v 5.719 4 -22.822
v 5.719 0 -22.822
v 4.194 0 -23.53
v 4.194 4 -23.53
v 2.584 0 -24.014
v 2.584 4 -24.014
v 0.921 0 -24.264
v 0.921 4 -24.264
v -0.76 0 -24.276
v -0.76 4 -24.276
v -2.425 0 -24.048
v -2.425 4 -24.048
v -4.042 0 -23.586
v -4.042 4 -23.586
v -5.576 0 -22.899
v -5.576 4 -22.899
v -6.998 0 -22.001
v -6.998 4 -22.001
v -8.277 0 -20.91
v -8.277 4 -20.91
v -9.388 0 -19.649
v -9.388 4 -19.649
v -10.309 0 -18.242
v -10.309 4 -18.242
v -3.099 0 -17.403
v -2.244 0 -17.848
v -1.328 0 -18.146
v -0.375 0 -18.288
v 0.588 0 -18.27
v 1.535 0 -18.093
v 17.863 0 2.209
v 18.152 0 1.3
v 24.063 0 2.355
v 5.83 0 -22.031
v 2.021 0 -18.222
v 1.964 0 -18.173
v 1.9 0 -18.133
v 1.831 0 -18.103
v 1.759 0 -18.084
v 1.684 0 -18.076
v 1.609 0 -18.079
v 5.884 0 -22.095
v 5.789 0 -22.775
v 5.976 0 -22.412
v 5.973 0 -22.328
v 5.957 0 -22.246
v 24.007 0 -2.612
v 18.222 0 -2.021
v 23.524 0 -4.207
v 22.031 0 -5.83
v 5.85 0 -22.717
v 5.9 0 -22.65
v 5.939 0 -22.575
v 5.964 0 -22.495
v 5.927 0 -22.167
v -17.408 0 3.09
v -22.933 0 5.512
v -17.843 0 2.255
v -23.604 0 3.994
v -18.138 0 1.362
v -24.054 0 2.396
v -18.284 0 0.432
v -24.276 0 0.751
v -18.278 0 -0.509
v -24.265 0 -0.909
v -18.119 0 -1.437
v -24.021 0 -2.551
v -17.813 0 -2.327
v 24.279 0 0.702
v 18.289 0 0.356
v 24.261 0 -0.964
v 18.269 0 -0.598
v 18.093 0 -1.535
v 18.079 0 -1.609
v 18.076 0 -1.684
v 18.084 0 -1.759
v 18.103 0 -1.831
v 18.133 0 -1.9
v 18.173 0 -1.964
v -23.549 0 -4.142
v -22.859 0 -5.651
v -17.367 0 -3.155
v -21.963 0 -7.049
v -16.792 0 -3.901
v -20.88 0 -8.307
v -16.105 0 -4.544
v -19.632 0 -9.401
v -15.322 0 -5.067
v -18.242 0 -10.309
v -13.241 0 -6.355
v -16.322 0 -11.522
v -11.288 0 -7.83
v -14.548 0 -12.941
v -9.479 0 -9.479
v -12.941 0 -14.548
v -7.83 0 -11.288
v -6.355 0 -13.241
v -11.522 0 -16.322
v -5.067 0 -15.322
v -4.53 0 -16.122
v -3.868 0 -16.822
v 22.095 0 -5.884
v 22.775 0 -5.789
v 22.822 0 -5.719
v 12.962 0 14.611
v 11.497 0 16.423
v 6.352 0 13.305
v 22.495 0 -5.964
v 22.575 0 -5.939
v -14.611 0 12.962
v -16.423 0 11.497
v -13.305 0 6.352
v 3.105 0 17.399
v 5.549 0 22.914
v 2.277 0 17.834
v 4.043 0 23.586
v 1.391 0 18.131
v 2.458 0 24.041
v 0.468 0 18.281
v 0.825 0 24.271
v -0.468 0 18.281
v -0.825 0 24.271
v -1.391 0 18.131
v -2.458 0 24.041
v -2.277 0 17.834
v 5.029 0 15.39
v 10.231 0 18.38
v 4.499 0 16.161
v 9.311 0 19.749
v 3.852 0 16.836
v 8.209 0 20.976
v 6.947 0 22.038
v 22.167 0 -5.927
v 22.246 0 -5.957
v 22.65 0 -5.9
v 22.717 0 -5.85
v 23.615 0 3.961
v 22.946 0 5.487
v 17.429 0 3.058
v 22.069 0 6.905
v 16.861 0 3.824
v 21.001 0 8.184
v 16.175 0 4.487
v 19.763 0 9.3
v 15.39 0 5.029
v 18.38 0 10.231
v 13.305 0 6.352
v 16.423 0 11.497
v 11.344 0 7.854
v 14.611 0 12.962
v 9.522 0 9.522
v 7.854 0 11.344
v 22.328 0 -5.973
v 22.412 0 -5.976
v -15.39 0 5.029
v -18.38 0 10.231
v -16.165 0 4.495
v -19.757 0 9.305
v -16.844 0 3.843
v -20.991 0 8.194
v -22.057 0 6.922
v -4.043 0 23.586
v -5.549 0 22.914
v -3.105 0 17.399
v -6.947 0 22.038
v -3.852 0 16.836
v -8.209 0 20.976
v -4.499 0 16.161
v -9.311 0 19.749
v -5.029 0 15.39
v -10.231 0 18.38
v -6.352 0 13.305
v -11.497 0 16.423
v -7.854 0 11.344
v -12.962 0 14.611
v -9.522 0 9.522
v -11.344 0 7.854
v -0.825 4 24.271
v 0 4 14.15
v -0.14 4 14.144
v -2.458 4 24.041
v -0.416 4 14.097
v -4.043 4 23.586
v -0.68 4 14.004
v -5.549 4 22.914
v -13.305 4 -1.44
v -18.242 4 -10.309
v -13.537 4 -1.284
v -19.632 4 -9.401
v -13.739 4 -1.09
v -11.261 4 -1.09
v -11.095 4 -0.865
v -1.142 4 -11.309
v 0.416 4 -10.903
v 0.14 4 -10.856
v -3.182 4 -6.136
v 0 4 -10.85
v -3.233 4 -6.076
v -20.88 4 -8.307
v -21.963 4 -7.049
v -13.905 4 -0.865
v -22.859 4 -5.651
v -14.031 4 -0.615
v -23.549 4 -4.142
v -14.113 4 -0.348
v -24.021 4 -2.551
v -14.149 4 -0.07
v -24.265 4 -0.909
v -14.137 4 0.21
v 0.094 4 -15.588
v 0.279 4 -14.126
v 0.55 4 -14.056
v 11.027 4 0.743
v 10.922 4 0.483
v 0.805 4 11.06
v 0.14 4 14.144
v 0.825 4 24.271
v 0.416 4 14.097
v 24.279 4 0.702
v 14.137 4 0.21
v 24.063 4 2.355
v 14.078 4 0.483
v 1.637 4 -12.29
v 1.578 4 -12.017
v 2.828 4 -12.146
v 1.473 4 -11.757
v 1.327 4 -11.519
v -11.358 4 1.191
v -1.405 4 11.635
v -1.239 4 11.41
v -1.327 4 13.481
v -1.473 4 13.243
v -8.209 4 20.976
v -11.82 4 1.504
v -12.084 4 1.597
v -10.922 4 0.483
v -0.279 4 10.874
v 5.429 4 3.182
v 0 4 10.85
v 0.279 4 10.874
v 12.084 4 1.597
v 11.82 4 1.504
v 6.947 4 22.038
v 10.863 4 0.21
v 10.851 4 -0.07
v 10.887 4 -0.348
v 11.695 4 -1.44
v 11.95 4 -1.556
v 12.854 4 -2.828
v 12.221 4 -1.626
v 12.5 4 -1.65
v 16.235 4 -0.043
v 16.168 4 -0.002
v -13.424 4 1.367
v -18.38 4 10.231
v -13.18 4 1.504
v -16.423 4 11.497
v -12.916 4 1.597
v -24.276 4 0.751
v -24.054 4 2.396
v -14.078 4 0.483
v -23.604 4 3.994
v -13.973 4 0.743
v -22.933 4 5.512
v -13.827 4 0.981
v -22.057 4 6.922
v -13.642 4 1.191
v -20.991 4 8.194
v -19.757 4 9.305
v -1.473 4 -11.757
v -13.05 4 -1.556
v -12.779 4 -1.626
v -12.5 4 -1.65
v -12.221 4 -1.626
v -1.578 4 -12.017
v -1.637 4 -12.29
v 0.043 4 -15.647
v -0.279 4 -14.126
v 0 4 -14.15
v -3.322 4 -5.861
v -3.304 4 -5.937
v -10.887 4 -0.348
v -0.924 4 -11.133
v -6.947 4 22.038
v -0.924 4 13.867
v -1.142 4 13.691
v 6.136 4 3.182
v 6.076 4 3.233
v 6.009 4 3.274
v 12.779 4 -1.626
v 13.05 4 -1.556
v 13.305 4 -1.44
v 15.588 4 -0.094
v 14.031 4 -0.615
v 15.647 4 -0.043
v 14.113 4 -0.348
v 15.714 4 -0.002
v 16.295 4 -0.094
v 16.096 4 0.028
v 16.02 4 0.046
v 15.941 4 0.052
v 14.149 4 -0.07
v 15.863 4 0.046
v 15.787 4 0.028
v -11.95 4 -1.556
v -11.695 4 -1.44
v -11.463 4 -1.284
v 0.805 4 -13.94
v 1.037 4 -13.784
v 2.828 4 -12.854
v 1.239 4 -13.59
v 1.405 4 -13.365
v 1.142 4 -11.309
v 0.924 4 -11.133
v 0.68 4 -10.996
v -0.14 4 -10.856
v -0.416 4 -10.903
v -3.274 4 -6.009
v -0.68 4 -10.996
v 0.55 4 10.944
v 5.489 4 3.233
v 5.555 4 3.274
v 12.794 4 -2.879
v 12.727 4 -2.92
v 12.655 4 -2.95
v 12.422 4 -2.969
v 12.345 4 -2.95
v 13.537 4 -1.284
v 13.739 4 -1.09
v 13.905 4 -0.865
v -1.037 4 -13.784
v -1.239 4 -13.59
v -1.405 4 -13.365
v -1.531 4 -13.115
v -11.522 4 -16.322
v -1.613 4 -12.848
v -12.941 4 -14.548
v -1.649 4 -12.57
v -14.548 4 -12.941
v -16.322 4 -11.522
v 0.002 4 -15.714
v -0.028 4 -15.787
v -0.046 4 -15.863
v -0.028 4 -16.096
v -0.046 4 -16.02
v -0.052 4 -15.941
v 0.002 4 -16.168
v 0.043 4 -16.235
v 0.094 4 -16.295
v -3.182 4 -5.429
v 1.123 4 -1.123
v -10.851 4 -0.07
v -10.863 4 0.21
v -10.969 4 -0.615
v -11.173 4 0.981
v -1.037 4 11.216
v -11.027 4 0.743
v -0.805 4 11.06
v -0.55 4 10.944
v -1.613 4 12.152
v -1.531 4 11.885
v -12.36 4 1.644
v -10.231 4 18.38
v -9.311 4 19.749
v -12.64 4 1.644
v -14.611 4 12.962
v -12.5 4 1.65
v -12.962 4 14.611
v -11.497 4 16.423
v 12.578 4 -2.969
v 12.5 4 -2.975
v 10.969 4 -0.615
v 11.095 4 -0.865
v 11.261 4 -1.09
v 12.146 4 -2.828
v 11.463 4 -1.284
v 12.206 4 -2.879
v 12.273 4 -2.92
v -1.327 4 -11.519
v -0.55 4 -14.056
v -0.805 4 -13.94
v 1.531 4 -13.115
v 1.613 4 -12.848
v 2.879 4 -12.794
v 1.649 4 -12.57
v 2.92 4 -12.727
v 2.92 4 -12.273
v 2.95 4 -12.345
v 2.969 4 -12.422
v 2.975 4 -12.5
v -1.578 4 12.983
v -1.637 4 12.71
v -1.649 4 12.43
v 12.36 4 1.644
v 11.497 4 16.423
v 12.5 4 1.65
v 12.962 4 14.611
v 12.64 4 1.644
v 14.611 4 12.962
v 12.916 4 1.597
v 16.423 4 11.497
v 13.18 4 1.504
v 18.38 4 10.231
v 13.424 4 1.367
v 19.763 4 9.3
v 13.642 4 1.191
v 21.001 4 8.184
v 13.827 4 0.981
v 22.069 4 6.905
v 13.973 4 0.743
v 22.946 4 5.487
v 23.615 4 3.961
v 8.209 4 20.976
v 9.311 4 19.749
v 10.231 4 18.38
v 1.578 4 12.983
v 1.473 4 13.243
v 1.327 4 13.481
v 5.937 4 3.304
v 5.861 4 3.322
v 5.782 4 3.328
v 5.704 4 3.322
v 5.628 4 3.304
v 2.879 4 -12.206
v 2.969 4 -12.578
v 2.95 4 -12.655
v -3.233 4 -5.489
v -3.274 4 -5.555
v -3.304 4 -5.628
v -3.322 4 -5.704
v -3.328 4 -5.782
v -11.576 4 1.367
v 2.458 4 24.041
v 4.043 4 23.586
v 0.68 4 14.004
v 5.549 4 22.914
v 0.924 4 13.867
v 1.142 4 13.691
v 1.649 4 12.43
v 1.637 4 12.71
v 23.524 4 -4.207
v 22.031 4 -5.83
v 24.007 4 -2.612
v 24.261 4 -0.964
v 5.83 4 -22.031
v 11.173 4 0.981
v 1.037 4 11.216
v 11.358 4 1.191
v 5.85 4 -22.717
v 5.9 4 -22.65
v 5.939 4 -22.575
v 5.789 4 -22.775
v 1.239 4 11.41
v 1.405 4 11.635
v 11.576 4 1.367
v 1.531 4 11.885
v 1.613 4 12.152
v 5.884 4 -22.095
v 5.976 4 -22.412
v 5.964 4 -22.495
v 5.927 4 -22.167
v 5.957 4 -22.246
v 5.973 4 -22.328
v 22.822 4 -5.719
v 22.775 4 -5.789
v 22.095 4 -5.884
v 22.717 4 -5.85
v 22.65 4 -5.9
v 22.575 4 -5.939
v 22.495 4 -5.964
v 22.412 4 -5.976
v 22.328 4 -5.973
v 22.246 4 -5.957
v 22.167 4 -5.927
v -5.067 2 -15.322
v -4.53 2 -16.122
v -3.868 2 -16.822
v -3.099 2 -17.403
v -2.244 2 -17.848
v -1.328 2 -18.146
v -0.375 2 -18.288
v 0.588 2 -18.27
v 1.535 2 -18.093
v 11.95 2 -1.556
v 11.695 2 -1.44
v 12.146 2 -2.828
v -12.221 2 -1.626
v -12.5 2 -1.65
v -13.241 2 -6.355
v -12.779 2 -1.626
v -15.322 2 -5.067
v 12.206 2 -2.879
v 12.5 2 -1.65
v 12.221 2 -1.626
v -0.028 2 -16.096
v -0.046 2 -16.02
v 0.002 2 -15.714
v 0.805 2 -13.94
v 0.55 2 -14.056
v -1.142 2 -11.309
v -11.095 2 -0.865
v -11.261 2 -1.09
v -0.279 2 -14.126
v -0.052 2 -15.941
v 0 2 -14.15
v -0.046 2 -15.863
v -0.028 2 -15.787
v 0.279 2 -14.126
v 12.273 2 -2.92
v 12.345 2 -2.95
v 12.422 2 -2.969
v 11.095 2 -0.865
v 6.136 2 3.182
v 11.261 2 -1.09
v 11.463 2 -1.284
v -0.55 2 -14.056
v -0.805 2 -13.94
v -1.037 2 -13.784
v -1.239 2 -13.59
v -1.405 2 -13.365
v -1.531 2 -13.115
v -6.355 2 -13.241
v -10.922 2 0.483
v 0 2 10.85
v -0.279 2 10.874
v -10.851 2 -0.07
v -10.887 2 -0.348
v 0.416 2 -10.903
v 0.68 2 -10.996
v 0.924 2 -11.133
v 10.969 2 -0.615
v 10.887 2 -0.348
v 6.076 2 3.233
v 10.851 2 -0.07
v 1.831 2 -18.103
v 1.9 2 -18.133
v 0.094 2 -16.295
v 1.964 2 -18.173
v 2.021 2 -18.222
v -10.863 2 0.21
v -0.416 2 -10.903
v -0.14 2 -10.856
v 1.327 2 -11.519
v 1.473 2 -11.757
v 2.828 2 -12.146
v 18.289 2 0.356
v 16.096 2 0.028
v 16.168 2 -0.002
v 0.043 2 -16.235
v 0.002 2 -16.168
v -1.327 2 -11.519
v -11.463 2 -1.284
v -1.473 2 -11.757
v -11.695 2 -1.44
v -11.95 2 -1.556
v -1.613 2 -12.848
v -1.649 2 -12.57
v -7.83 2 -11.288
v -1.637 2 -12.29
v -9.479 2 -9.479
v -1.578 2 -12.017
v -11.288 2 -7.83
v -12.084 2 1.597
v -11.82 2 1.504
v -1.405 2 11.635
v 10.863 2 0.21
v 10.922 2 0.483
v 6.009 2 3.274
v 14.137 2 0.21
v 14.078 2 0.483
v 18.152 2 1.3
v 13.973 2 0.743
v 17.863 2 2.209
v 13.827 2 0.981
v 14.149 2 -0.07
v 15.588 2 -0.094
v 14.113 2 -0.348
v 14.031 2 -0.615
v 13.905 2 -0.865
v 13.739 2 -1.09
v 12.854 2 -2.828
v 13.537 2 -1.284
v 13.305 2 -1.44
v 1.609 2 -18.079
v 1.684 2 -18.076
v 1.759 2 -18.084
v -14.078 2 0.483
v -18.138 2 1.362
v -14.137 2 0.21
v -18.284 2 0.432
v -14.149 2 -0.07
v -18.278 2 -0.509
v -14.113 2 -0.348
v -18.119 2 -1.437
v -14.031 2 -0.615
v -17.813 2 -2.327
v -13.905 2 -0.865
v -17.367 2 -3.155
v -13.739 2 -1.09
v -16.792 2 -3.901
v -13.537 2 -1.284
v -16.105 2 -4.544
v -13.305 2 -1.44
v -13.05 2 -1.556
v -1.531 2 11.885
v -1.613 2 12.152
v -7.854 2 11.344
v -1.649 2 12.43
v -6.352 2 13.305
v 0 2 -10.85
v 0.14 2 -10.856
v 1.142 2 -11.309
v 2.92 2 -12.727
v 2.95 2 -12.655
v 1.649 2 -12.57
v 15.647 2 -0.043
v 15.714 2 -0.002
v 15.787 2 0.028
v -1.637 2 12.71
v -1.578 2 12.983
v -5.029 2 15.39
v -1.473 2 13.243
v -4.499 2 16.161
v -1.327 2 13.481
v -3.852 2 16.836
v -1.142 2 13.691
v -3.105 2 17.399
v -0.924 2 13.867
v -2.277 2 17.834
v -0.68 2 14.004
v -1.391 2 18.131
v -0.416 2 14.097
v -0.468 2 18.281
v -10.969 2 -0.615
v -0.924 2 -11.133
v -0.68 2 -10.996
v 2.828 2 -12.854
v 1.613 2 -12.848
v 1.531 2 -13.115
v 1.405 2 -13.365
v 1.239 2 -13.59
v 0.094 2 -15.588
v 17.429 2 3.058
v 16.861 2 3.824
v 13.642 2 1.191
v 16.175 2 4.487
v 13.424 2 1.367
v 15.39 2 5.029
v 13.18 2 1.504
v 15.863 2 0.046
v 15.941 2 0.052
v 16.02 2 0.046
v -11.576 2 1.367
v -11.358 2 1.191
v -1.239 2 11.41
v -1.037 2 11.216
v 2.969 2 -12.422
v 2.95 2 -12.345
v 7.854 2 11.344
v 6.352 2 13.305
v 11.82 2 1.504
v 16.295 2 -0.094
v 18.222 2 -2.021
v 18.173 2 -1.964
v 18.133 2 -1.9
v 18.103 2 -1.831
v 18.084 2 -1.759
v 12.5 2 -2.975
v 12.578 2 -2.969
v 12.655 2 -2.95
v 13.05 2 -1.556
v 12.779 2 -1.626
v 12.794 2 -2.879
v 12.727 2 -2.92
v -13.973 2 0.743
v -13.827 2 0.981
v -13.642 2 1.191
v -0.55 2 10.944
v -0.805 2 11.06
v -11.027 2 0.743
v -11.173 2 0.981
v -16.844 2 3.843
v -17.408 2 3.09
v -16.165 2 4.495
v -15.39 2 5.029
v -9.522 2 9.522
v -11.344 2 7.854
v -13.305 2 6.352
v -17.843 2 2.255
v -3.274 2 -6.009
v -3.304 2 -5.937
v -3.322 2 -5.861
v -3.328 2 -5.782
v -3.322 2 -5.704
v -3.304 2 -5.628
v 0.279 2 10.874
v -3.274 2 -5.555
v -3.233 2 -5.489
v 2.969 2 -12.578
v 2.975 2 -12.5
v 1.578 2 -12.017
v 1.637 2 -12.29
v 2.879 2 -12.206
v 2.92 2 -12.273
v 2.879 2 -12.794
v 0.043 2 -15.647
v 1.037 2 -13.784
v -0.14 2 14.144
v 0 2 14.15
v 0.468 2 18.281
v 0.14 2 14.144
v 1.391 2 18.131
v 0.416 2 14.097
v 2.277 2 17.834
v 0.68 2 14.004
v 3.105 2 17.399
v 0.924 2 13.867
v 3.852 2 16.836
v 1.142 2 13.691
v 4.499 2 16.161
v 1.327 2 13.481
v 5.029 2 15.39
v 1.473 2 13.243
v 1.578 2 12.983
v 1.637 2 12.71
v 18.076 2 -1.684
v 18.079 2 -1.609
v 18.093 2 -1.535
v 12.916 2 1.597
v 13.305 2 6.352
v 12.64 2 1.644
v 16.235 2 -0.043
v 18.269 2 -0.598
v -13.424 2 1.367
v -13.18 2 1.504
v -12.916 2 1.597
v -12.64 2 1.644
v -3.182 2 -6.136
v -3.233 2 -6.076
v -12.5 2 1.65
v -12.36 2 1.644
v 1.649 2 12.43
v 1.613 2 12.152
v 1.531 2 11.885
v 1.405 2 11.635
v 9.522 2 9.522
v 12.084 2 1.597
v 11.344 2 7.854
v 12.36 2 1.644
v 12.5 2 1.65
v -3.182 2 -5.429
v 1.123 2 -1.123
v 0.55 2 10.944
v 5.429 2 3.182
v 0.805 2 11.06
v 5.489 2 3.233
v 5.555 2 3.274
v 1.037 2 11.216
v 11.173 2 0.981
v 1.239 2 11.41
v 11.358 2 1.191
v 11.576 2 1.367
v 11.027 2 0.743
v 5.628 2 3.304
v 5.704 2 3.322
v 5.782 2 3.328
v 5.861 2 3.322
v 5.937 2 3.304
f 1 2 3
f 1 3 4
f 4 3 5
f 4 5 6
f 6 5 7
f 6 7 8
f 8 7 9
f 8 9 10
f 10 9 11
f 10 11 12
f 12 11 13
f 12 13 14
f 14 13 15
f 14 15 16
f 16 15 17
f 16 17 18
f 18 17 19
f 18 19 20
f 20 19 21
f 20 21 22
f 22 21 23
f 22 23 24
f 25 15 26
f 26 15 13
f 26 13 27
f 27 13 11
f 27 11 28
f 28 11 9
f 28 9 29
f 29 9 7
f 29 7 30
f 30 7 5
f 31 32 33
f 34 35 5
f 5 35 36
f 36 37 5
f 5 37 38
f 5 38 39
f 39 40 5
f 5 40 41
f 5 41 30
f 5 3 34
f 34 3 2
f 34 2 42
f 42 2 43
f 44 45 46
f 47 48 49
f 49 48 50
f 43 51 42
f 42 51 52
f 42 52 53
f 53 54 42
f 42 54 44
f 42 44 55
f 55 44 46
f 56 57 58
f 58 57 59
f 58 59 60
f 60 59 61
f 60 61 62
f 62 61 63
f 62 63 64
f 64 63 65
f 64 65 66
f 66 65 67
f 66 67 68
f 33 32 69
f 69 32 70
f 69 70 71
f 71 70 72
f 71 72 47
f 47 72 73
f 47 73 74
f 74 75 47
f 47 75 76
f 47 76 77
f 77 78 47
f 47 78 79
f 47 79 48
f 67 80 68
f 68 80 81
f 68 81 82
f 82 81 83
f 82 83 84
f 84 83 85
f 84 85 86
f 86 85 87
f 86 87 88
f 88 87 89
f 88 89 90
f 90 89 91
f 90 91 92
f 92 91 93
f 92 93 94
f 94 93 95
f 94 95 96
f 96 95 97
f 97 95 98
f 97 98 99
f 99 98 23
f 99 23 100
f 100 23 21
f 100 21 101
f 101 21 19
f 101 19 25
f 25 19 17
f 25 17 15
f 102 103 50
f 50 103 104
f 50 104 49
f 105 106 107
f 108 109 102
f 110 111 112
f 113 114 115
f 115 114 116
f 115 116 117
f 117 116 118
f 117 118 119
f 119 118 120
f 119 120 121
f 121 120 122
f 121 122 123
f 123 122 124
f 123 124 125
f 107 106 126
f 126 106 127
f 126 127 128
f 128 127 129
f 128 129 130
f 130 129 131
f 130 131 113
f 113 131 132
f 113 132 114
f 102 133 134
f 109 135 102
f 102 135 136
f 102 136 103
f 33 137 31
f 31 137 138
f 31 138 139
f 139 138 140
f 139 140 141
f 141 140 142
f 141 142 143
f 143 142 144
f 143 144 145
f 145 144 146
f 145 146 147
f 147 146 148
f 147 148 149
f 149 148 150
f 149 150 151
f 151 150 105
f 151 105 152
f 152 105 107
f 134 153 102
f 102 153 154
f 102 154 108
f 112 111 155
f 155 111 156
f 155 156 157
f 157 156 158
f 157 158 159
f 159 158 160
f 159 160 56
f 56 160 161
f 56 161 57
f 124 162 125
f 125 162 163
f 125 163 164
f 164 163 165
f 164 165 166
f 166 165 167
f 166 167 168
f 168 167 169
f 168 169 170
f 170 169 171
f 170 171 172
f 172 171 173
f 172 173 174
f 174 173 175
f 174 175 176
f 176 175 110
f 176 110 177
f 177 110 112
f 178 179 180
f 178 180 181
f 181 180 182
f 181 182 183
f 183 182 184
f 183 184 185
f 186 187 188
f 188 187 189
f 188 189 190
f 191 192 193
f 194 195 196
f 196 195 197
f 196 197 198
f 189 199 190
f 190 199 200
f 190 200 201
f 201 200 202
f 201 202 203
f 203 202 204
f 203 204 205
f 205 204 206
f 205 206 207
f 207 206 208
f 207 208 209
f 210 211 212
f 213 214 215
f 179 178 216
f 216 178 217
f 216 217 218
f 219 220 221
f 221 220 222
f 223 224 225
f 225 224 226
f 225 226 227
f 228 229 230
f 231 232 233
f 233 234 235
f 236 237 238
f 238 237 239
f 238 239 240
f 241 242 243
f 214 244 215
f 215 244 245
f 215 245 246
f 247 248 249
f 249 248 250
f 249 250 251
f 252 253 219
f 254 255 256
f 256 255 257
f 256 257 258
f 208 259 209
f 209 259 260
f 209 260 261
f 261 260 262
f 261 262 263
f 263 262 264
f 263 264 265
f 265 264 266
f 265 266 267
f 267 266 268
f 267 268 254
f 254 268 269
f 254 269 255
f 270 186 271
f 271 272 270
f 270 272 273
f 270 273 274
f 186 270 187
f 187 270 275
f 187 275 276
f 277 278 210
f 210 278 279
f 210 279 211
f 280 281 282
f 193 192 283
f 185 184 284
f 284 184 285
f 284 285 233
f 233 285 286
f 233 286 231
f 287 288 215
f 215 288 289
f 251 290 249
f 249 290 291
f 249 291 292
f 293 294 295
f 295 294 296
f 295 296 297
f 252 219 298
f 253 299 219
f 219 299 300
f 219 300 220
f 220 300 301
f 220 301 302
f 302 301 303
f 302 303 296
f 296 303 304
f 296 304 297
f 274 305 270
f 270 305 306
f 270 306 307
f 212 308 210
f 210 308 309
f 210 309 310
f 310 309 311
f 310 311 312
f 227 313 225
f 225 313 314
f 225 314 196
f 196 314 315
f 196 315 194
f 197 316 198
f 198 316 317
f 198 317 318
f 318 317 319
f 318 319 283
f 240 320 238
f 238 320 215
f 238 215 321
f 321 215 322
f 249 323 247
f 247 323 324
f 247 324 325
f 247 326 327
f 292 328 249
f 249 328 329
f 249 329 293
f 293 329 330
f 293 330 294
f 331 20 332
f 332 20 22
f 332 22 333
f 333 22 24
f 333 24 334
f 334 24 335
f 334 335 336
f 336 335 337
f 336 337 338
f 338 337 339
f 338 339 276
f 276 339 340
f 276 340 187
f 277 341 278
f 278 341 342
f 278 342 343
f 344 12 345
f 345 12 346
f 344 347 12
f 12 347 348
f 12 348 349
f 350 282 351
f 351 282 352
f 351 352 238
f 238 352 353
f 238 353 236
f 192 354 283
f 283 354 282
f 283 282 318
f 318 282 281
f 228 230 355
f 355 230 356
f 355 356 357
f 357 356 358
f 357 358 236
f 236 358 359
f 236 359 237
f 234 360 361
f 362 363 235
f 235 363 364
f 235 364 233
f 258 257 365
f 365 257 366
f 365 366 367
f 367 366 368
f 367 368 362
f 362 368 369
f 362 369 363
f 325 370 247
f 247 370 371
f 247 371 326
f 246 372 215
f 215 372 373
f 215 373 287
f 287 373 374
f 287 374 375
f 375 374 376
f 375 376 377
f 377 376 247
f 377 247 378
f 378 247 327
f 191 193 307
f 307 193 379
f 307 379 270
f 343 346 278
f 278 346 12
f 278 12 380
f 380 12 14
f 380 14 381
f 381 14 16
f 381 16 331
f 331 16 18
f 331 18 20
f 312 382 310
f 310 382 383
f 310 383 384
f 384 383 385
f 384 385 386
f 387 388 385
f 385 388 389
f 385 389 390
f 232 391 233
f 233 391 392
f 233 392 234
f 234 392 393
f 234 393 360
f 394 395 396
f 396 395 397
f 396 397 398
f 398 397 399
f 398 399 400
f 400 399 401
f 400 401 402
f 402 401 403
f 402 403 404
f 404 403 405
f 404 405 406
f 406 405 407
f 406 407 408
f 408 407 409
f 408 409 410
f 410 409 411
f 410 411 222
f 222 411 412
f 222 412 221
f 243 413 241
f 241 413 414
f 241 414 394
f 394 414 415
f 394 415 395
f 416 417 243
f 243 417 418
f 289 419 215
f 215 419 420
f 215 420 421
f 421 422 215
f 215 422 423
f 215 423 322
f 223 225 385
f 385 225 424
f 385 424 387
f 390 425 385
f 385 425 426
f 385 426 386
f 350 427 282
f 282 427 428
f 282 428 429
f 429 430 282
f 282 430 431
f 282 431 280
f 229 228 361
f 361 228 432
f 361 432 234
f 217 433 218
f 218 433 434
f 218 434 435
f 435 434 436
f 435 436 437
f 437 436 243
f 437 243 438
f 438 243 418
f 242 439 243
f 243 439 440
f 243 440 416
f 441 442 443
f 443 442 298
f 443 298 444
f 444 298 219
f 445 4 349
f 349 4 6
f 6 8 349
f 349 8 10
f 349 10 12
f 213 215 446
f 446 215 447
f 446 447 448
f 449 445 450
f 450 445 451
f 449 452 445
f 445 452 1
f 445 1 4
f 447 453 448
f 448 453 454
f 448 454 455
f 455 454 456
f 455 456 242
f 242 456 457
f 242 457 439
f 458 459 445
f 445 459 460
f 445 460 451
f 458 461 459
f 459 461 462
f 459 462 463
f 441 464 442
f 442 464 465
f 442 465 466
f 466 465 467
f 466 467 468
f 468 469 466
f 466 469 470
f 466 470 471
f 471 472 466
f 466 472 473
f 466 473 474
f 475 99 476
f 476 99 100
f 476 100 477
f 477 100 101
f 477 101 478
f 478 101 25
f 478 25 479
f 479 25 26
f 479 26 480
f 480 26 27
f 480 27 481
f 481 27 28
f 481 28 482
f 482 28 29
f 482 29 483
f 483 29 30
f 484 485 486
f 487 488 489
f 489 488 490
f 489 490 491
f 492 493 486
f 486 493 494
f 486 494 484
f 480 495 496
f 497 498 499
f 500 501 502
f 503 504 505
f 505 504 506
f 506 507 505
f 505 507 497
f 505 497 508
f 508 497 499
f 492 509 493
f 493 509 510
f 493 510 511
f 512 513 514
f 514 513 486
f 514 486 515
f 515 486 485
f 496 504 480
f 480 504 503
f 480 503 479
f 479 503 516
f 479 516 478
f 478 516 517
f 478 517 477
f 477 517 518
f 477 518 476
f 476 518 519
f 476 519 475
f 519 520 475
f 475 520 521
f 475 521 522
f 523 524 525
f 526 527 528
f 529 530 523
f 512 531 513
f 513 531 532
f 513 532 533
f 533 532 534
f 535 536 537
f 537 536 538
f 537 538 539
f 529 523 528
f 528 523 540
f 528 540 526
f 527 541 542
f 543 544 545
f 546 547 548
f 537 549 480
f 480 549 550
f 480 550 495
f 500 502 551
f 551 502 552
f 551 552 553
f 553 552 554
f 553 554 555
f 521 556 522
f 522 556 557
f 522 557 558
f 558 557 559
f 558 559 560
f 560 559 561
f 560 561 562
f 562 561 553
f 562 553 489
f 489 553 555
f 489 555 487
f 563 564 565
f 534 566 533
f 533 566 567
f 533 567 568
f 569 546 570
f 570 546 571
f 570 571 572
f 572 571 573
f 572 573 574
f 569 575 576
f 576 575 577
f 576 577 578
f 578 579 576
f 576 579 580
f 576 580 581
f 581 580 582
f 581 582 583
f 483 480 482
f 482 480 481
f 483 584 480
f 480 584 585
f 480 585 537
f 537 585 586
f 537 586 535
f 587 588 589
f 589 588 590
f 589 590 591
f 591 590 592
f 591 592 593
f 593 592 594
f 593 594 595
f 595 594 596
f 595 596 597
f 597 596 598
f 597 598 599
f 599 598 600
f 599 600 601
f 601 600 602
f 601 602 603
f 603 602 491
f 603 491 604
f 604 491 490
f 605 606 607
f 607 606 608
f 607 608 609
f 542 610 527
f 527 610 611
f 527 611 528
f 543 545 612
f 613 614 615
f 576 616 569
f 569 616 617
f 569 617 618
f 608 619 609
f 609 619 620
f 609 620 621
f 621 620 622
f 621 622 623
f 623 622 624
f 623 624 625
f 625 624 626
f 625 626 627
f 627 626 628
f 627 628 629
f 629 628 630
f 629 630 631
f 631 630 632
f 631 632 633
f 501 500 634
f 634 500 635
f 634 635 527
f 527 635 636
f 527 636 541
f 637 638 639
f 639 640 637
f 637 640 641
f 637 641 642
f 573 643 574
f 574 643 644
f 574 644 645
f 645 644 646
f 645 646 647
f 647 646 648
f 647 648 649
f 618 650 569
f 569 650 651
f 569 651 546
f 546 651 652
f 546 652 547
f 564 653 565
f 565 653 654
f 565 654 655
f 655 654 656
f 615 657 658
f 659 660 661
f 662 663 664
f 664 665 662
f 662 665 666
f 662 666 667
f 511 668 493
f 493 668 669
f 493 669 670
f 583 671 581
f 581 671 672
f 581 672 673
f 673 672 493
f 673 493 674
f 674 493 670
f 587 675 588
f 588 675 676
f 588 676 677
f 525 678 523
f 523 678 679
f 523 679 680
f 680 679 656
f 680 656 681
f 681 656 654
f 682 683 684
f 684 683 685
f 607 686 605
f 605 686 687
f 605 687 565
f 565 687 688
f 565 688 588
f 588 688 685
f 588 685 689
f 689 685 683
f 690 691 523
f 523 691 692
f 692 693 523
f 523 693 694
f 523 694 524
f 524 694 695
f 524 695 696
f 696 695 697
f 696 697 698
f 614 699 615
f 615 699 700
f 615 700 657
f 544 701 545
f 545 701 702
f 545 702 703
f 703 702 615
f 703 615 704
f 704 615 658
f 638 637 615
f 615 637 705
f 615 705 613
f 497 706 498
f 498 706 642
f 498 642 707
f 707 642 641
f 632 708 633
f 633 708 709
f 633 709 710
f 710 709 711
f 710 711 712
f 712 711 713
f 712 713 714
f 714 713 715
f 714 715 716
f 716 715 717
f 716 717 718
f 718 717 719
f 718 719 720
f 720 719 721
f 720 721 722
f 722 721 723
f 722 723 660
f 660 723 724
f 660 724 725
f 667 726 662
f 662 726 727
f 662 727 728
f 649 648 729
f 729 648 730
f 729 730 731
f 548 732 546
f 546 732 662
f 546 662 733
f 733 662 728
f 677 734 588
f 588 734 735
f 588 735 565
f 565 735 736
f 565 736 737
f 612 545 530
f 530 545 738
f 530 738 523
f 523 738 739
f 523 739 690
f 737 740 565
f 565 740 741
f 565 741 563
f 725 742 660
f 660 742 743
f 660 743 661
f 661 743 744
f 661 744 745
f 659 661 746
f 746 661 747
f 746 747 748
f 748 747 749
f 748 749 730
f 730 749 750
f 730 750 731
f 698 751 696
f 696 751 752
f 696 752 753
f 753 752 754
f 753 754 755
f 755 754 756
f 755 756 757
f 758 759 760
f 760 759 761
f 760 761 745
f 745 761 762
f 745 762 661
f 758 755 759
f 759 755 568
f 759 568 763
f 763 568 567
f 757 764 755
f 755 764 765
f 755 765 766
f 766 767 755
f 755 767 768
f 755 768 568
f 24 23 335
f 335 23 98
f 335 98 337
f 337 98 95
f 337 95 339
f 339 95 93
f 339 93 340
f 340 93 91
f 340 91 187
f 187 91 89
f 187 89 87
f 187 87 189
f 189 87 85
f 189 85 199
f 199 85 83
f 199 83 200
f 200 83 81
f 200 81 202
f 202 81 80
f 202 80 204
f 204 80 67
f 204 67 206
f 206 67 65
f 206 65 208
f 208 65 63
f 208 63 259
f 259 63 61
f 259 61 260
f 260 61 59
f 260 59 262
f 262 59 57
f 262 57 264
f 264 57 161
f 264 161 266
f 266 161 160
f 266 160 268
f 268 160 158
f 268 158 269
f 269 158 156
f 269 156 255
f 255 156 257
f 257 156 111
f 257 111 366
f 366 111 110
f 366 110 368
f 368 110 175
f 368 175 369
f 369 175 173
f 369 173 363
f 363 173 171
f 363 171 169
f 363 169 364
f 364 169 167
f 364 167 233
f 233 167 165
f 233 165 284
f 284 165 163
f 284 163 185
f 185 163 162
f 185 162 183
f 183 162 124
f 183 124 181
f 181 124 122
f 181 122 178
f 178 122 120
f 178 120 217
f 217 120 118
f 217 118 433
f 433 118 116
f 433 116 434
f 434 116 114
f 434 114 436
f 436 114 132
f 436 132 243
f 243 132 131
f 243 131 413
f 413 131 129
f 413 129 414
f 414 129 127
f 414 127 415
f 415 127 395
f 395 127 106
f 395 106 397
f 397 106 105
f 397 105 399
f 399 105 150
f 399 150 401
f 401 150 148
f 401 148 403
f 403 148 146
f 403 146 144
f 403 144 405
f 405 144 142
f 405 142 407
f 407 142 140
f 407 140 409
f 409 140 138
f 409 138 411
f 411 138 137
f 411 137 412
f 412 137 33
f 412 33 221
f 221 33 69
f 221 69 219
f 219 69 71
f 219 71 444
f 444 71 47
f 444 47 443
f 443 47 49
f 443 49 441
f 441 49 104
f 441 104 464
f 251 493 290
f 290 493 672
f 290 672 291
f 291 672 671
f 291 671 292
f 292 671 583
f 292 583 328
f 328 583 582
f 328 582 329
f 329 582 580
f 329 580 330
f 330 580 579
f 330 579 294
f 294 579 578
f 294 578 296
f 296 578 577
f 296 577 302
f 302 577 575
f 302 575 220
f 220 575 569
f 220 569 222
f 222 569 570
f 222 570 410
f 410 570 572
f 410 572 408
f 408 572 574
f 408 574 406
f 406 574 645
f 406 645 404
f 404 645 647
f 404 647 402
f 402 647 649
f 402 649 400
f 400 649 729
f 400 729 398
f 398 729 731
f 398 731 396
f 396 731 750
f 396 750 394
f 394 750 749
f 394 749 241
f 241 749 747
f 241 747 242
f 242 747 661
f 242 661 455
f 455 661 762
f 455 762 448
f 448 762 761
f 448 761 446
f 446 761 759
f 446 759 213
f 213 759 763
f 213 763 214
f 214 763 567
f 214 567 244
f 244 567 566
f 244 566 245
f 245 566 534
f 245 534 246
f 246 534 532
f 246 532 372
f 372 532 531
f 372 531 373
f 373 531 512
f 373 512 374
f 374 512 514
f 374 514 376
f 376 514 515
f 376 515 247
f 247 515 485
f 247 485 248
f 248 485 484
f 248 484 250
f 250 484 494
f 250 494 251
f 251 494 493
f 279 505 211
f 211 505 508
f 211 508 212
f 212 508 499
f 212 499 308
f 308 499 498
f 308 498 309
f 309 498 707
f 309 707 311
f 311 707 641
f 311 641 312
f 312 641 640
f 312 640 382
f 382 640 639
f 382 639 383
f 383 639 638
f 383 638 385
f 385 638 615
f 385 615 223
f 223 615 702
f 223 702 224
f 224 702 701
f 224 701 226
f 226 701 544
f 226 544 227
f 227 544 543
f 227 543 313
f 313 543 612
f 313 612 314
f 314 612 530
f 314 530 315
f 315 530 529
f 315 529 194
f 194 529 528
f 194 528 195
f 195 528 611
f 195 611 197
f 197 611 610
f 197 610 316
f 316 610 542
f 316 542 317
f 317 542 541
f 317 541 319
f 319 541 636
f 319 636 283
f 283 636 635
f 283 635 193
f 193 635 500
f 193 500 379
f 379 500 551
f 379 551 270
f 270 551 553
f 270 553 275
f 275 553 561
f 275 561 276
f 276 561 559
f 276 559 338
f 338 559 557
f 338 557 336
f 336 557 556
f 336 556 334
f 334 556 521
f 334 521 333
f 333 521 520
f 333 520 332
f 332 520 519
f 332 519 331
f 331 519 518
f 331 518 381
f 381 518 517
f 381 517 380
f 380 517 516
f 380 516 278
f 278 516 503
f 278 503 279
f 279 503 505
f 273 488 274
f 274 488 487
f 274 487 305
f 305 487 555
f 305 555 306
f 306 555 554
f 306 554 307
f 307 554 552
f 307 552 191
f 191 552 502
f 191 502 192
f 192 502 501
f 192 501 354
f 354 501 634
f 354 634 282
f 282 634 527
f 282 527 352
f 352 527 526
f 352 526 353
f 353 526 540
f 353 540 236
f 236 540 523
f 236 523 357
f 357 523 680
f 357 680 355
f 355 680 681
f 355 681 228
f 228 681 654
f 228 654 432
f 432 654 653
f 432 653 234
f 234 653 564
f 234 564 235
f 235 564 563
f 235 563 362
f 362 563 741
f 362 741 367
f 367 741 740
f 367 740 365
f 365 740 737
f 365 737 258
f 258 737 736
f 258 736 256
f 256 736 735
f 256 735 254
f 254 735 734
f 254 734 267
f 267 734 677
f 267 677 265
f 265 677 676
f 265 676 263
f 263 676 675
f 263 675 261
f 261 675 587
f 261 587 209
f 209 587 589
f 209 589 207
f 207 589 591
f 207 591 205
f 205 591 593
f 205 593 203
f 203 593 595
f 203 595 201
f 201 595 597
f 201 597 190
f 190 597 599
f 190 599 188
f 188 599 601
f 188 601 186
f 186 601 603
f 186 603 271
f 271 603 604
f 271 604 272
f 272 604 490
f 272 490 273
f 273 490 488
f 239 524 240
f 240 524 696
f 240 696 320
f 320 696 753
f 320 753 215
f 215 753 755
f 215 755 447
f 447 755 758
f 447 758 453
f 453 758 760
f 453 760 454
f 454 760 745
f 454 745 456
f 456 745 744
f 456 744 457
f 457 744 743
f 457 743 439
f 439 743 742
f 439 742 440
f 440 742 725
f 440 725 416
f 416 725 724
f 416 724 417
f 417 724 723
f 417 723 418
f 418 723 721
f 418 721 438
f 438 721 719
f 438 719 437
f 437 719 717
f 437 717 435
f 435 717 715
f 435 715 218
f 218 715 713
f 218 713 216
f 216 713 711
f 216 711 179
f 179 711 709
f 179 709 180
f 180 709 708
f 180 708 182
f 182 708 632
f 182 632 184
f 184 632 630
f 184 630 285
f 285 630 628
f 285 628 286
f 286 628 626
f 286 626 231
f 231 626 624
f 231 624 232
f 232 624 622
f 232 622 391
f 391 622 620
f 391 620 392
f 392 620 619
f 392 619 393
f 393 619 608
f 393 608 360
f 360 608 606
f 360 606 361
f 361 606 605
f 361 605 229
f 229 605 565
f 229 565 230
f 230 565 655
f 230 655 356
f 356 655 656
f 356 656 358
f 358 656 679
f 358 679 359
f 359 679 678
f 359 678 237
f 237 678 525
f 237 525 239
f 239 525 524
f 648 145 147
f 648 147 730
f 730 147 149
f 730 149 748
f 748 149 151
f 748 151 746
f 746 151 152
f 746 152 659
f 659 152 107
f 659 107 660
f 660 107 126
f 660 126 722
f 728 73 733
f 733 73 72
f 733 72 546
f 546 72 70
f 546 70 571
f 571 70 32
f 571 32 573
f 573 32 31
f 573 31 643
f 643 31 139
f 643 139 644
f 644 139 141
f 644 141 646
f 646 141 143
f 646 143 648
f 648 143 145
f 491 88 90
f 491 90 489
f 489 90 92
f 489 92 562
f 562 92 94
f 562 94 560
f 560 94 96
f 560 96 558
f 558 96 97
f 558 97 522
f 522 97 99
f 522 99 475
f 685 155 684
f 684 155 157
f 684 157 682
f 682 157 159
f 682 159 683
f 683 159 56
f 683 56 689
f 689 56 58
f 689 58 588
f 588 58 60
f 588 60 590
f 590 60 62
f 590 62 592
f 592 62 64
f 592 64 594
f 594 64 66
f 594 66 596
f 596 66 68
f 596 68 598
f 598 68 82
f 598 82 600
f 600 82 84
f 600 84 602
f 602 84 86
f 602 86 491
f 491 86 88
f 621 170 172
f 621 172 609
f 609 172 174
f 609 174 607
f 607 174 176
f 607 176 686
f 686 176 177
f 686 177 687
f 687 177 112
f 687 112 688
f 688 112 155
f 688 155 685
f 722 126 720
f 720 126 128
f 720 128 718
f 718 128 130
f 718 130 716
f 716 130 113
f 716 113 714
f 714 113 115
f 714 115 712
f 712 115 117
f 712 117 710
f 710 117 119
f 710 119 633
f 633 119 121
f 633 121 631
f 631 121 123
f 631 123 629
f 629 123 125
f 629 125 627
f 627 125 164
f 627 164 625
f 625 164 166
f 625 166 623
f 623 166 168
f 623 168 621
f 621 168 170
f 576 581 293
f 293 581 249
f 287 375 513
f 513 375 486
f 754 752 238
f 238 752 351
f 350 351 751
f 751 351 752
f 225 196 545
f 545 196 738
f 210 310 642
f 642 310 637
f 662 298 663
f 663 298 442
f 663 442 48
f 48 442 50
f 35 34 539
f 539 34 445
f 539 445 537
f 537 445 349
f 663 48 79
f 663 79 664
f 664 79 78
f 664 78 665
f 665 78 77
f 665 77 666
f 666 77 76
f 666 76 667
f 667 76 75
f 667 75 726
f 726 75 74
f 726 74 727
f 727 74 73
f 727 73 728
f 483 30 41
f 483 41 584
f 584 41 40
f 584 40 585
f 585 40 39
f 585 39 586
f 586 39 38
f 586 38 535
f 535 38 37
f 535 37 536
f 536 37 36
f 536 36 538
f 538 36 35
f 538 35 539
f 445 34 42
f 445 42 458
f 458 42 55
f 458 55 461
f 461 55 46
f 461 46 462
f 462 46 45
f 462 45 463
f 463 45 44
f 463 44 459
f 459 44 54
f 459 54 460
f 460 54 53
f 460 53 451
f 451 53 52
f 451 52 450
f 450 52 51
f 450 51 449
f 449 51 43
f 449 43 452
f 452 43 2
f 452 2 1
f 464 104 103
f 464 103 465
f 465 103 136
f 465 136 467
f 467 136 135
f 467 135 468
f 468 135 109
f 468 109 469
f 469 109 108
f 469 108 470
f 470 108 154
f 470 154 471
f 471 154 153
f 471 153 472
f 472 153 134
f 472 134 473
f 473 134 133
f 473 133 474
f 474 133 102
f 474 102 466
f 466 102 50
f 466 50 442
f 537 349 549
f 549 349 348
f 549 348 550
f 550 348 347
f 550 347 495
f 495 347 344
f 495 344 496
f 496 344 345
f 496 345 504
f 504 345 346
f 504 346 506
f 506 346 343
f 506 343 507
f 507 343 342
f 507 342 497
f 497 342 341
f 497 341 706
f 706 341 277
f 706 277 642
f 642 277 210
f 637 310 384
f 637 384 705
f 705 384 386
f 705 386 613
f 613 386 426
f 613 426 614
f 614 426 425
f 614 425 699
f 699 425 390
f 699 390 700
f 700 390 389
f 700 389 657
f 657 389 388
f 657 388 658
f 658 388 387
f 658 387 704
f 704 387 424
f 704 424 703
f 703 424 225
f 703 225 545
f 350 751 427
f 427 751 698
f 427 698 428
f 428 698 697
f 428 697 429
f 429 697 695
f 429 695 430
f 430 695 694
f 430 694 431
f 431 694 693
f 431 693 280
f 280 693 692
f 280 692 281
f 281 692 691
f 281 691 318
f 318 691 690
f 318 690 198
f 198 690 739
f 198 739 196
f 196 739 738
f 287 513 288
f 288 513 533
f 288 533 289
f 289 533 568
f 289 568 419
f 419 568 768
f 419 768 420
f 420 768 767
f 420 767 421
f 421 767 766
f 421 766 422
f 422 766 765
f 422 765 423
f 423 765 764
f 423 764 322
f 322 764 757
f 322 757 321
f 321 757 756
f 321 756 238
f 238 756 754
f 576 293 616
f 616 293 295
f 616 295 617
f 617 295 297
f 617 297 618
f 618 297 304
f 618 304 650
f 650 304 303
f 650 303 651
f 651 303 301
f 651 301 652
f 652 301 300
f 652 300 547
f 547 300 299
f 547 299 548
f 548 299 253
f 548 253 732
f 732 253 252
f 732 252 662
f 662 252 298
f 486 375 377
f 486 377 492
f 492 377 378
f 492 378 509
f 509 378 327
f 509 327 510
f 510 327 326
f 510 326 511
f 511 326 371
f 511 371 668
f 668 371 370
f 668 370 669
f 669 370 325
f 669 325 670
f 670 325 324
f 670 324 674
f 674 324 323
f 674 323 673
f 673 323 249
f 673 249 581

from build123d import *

# Parameters (mm, degrees)
SKETCH_1_R          = 1.65
EXTRUDE_1_DEPTH     = 4
SKETCH_1_4_R        = 1.65
CUT_EXTRUDE_4_DEPTH = 2
CUT_EXTRUDE_2_DEPTH = 35.597398746
FILLET_1_R          = 0.5


with BuildPart() as part:
    # 草图1 → 凸台-拉伸1 (new body)
    with BuildSketch(Plane(origin=(0, 0, 0), x_dir=(1, 0, 0), z_dir=(0, 1, 0))):
        with BuildLine():
            ThreePointArc((10.308655527, 18.24209206), (0, 24.3), (-10.308655527, 18.24209206))
            ThreePointArc((-10.308655527, 18.24209206), (-13.722071454, 13.722071454), (-18.24209206, 10.308655527))
            ThreePointArc((-18.24209206, 10.308655527), (-24.299735034, 0.079076788), (-18.37973853, -10.230770979))
            ThreePointArc((-18.37973853, -10.230770979), (-13.764731337, -13.764731337), (-10.230770979, -18.37973853))
            ThreePointArc((-10.230770979, -18.37973853), (0, -24.3), (10.230770979, -18.37973853))
            ThreePointArc((10.230770979, -18.37973853), (13.764731337, -13.764731337), (18.37973853, -10.230770979))
            ThreePointArc((18.37973853, -10.230770979), (24.299735034, 0.079076788), (18.24209206, 10.308655527))
            ThreePointArc((18.24209206, 10.308655527), (13.722071454, 13.722071454), (10.308655527, 18.24209206))
        make_face()
        with Locations((-12.5, 0)):
            Circle(SKETCH_1_R, mode=Mode.SUBTRACT)
        with Locations((0, -12.5)):
            Circle(SKETCH_1_R, mode=Mode.SUBTRACT)
        with Locations((12.5, 0)):
            Circle(SKETCH_1_R, mode=Mode.SUBTRACT)
        with Locations((0, 12.5)):
            Circle(SKETCH_1_R, mode=Mode.SUBTRACT)
    extrude(amount=EXTRUDE_1_DEPTH)

    # 草图1<4> → 切除-拉伸4 (cut)
    with BuildSketch(Plane(origin=(0, 0, 0), x_dir=(1, 0, 0), z_dir=(0, 1, 0))):
        with BuildLine():
            ThreePointArc((15.322384233, 5.066966276), (9.479430767, 9.479430767), (5.066966276, 15.322384233))
            ThreePointArc((5.066966276, 15.322384233), (0, 18.3), (-5.066966276, 15.322384233))
            ThreePointArc((-5.066966276, 15.322384233), (-9.479430767, 9.479430767), (-15.322384233, 5.066966276))
            ThreePointArc((-15.322384233, 5.066966276), (-18.299869762, 0.038868252), (-15.390040972, -5.02868404))
            ThreePointArc((-15.390040972, -5.02868404), (-9.52209065, -9.52209065), (-5.02868404, -15.390040972))
            ThreePointArc((-5.02868404, -15.390040972), (0, -18.3), (5.02868404, -15.390040972))
            ThreePointArc((5.02868404, -15.390040972), (9.52209065, -9.52209065), (15.390040972, -5.02868404))
            ThreePointArc((15.390040972, -5.02868404), (18.299869762, 0.038868252), (15.322384233, 5.066966276))
        make_face()
        with Locations((-12.5, 0)):
            Circle(SKETCH_1_4_R, mode=Mode.SUBTRACT)
        with Locations((0, -12.5)):
            Circle(SKETCH_1_4_R, mode=Mode.SUBTRACT)
        with Locations((12.5, 0)):
            Circle(SKETCH_1_4_R, mode=Mode.SUBTRACT)
        with Locations((0, 12.5)):
            Circle(SKETCH_1_4_R, mode=Mode.SUBTRACT)
    extrude(amount=CUT_EXTRUDE_4_DEPTH, mode=Mode.SUBTRACT)

    # 草图3 → 切除-拉伸2 (cut, through all)
    with BuildSketch(Plane(origin=(0, 4, 0), x_dir=(1, 0, 0), z_dir=(0, 1, 0))):
        with BuildLine():
            Line((6.285747384, 22.486459824), (-0.25936461, 15.94134783))
            Line((-0.25936461, 15.94134783), (3.181980515, 12.499997674))
            Line((3.181980515, 12.499997674), (-3.535538817, 5.782488163))
            Line((-3.535538817, 5.782488163), (1.123471267, 1.123471267))
            Line((1.123471267, 1.123471267), (5.782488163, -3.535538817))
            Line((5.782488163, -3.535538817), (12.499997674, 3.181980515))
            Line((12.499997674, 3.181980515), (15.94134783, -0.25936461))
            Line((15.94134783, -0.25936461), (22.486459824, 6.285747384))
            ThreePointArc((22.486459824, 6.285747384), (20.617437008, 8.564298945), (18.24209206, 10.308655527))
            ThreePointArc((18.24209206, 10.308655527), (13.722071454, 13.722071454), (10.308655527, 18.24209206))
            ThreePointArc((10.308655527, 18.24209206), (8.564298945, 20.617437008), (6.285747384, 22.486459824))
        make_face()
    extrude(amount=-CUT_EXTRUDE_2_DEPTH, mode=Mode.SUBTRACT)

    # 圆角1
    fillet_1_edges = [part.edges().sort_by_distance(p)[0] for p in [
        (18.010435708, 1, -1.809723268),
        (1.809723268, 1, -18.010435708),
        (6.285747384, 2, -22.486459824),
        (22.486459824, 2, -6.285747384),
        (-0.25936461, 3, -15.94134783),
        (3.181980515, 3, -12.499997674),
        (-3.535538817, 3, -5.782488163),
        (5.782488163, 3, 3.535538817),
        (15.94134783, 3, 0.25936461),
        (12.499997674, 3, -3.181980515),
    ]]
    fillet(fillet_1_edges, radius=FILLET_1_R)


solid = part.part
